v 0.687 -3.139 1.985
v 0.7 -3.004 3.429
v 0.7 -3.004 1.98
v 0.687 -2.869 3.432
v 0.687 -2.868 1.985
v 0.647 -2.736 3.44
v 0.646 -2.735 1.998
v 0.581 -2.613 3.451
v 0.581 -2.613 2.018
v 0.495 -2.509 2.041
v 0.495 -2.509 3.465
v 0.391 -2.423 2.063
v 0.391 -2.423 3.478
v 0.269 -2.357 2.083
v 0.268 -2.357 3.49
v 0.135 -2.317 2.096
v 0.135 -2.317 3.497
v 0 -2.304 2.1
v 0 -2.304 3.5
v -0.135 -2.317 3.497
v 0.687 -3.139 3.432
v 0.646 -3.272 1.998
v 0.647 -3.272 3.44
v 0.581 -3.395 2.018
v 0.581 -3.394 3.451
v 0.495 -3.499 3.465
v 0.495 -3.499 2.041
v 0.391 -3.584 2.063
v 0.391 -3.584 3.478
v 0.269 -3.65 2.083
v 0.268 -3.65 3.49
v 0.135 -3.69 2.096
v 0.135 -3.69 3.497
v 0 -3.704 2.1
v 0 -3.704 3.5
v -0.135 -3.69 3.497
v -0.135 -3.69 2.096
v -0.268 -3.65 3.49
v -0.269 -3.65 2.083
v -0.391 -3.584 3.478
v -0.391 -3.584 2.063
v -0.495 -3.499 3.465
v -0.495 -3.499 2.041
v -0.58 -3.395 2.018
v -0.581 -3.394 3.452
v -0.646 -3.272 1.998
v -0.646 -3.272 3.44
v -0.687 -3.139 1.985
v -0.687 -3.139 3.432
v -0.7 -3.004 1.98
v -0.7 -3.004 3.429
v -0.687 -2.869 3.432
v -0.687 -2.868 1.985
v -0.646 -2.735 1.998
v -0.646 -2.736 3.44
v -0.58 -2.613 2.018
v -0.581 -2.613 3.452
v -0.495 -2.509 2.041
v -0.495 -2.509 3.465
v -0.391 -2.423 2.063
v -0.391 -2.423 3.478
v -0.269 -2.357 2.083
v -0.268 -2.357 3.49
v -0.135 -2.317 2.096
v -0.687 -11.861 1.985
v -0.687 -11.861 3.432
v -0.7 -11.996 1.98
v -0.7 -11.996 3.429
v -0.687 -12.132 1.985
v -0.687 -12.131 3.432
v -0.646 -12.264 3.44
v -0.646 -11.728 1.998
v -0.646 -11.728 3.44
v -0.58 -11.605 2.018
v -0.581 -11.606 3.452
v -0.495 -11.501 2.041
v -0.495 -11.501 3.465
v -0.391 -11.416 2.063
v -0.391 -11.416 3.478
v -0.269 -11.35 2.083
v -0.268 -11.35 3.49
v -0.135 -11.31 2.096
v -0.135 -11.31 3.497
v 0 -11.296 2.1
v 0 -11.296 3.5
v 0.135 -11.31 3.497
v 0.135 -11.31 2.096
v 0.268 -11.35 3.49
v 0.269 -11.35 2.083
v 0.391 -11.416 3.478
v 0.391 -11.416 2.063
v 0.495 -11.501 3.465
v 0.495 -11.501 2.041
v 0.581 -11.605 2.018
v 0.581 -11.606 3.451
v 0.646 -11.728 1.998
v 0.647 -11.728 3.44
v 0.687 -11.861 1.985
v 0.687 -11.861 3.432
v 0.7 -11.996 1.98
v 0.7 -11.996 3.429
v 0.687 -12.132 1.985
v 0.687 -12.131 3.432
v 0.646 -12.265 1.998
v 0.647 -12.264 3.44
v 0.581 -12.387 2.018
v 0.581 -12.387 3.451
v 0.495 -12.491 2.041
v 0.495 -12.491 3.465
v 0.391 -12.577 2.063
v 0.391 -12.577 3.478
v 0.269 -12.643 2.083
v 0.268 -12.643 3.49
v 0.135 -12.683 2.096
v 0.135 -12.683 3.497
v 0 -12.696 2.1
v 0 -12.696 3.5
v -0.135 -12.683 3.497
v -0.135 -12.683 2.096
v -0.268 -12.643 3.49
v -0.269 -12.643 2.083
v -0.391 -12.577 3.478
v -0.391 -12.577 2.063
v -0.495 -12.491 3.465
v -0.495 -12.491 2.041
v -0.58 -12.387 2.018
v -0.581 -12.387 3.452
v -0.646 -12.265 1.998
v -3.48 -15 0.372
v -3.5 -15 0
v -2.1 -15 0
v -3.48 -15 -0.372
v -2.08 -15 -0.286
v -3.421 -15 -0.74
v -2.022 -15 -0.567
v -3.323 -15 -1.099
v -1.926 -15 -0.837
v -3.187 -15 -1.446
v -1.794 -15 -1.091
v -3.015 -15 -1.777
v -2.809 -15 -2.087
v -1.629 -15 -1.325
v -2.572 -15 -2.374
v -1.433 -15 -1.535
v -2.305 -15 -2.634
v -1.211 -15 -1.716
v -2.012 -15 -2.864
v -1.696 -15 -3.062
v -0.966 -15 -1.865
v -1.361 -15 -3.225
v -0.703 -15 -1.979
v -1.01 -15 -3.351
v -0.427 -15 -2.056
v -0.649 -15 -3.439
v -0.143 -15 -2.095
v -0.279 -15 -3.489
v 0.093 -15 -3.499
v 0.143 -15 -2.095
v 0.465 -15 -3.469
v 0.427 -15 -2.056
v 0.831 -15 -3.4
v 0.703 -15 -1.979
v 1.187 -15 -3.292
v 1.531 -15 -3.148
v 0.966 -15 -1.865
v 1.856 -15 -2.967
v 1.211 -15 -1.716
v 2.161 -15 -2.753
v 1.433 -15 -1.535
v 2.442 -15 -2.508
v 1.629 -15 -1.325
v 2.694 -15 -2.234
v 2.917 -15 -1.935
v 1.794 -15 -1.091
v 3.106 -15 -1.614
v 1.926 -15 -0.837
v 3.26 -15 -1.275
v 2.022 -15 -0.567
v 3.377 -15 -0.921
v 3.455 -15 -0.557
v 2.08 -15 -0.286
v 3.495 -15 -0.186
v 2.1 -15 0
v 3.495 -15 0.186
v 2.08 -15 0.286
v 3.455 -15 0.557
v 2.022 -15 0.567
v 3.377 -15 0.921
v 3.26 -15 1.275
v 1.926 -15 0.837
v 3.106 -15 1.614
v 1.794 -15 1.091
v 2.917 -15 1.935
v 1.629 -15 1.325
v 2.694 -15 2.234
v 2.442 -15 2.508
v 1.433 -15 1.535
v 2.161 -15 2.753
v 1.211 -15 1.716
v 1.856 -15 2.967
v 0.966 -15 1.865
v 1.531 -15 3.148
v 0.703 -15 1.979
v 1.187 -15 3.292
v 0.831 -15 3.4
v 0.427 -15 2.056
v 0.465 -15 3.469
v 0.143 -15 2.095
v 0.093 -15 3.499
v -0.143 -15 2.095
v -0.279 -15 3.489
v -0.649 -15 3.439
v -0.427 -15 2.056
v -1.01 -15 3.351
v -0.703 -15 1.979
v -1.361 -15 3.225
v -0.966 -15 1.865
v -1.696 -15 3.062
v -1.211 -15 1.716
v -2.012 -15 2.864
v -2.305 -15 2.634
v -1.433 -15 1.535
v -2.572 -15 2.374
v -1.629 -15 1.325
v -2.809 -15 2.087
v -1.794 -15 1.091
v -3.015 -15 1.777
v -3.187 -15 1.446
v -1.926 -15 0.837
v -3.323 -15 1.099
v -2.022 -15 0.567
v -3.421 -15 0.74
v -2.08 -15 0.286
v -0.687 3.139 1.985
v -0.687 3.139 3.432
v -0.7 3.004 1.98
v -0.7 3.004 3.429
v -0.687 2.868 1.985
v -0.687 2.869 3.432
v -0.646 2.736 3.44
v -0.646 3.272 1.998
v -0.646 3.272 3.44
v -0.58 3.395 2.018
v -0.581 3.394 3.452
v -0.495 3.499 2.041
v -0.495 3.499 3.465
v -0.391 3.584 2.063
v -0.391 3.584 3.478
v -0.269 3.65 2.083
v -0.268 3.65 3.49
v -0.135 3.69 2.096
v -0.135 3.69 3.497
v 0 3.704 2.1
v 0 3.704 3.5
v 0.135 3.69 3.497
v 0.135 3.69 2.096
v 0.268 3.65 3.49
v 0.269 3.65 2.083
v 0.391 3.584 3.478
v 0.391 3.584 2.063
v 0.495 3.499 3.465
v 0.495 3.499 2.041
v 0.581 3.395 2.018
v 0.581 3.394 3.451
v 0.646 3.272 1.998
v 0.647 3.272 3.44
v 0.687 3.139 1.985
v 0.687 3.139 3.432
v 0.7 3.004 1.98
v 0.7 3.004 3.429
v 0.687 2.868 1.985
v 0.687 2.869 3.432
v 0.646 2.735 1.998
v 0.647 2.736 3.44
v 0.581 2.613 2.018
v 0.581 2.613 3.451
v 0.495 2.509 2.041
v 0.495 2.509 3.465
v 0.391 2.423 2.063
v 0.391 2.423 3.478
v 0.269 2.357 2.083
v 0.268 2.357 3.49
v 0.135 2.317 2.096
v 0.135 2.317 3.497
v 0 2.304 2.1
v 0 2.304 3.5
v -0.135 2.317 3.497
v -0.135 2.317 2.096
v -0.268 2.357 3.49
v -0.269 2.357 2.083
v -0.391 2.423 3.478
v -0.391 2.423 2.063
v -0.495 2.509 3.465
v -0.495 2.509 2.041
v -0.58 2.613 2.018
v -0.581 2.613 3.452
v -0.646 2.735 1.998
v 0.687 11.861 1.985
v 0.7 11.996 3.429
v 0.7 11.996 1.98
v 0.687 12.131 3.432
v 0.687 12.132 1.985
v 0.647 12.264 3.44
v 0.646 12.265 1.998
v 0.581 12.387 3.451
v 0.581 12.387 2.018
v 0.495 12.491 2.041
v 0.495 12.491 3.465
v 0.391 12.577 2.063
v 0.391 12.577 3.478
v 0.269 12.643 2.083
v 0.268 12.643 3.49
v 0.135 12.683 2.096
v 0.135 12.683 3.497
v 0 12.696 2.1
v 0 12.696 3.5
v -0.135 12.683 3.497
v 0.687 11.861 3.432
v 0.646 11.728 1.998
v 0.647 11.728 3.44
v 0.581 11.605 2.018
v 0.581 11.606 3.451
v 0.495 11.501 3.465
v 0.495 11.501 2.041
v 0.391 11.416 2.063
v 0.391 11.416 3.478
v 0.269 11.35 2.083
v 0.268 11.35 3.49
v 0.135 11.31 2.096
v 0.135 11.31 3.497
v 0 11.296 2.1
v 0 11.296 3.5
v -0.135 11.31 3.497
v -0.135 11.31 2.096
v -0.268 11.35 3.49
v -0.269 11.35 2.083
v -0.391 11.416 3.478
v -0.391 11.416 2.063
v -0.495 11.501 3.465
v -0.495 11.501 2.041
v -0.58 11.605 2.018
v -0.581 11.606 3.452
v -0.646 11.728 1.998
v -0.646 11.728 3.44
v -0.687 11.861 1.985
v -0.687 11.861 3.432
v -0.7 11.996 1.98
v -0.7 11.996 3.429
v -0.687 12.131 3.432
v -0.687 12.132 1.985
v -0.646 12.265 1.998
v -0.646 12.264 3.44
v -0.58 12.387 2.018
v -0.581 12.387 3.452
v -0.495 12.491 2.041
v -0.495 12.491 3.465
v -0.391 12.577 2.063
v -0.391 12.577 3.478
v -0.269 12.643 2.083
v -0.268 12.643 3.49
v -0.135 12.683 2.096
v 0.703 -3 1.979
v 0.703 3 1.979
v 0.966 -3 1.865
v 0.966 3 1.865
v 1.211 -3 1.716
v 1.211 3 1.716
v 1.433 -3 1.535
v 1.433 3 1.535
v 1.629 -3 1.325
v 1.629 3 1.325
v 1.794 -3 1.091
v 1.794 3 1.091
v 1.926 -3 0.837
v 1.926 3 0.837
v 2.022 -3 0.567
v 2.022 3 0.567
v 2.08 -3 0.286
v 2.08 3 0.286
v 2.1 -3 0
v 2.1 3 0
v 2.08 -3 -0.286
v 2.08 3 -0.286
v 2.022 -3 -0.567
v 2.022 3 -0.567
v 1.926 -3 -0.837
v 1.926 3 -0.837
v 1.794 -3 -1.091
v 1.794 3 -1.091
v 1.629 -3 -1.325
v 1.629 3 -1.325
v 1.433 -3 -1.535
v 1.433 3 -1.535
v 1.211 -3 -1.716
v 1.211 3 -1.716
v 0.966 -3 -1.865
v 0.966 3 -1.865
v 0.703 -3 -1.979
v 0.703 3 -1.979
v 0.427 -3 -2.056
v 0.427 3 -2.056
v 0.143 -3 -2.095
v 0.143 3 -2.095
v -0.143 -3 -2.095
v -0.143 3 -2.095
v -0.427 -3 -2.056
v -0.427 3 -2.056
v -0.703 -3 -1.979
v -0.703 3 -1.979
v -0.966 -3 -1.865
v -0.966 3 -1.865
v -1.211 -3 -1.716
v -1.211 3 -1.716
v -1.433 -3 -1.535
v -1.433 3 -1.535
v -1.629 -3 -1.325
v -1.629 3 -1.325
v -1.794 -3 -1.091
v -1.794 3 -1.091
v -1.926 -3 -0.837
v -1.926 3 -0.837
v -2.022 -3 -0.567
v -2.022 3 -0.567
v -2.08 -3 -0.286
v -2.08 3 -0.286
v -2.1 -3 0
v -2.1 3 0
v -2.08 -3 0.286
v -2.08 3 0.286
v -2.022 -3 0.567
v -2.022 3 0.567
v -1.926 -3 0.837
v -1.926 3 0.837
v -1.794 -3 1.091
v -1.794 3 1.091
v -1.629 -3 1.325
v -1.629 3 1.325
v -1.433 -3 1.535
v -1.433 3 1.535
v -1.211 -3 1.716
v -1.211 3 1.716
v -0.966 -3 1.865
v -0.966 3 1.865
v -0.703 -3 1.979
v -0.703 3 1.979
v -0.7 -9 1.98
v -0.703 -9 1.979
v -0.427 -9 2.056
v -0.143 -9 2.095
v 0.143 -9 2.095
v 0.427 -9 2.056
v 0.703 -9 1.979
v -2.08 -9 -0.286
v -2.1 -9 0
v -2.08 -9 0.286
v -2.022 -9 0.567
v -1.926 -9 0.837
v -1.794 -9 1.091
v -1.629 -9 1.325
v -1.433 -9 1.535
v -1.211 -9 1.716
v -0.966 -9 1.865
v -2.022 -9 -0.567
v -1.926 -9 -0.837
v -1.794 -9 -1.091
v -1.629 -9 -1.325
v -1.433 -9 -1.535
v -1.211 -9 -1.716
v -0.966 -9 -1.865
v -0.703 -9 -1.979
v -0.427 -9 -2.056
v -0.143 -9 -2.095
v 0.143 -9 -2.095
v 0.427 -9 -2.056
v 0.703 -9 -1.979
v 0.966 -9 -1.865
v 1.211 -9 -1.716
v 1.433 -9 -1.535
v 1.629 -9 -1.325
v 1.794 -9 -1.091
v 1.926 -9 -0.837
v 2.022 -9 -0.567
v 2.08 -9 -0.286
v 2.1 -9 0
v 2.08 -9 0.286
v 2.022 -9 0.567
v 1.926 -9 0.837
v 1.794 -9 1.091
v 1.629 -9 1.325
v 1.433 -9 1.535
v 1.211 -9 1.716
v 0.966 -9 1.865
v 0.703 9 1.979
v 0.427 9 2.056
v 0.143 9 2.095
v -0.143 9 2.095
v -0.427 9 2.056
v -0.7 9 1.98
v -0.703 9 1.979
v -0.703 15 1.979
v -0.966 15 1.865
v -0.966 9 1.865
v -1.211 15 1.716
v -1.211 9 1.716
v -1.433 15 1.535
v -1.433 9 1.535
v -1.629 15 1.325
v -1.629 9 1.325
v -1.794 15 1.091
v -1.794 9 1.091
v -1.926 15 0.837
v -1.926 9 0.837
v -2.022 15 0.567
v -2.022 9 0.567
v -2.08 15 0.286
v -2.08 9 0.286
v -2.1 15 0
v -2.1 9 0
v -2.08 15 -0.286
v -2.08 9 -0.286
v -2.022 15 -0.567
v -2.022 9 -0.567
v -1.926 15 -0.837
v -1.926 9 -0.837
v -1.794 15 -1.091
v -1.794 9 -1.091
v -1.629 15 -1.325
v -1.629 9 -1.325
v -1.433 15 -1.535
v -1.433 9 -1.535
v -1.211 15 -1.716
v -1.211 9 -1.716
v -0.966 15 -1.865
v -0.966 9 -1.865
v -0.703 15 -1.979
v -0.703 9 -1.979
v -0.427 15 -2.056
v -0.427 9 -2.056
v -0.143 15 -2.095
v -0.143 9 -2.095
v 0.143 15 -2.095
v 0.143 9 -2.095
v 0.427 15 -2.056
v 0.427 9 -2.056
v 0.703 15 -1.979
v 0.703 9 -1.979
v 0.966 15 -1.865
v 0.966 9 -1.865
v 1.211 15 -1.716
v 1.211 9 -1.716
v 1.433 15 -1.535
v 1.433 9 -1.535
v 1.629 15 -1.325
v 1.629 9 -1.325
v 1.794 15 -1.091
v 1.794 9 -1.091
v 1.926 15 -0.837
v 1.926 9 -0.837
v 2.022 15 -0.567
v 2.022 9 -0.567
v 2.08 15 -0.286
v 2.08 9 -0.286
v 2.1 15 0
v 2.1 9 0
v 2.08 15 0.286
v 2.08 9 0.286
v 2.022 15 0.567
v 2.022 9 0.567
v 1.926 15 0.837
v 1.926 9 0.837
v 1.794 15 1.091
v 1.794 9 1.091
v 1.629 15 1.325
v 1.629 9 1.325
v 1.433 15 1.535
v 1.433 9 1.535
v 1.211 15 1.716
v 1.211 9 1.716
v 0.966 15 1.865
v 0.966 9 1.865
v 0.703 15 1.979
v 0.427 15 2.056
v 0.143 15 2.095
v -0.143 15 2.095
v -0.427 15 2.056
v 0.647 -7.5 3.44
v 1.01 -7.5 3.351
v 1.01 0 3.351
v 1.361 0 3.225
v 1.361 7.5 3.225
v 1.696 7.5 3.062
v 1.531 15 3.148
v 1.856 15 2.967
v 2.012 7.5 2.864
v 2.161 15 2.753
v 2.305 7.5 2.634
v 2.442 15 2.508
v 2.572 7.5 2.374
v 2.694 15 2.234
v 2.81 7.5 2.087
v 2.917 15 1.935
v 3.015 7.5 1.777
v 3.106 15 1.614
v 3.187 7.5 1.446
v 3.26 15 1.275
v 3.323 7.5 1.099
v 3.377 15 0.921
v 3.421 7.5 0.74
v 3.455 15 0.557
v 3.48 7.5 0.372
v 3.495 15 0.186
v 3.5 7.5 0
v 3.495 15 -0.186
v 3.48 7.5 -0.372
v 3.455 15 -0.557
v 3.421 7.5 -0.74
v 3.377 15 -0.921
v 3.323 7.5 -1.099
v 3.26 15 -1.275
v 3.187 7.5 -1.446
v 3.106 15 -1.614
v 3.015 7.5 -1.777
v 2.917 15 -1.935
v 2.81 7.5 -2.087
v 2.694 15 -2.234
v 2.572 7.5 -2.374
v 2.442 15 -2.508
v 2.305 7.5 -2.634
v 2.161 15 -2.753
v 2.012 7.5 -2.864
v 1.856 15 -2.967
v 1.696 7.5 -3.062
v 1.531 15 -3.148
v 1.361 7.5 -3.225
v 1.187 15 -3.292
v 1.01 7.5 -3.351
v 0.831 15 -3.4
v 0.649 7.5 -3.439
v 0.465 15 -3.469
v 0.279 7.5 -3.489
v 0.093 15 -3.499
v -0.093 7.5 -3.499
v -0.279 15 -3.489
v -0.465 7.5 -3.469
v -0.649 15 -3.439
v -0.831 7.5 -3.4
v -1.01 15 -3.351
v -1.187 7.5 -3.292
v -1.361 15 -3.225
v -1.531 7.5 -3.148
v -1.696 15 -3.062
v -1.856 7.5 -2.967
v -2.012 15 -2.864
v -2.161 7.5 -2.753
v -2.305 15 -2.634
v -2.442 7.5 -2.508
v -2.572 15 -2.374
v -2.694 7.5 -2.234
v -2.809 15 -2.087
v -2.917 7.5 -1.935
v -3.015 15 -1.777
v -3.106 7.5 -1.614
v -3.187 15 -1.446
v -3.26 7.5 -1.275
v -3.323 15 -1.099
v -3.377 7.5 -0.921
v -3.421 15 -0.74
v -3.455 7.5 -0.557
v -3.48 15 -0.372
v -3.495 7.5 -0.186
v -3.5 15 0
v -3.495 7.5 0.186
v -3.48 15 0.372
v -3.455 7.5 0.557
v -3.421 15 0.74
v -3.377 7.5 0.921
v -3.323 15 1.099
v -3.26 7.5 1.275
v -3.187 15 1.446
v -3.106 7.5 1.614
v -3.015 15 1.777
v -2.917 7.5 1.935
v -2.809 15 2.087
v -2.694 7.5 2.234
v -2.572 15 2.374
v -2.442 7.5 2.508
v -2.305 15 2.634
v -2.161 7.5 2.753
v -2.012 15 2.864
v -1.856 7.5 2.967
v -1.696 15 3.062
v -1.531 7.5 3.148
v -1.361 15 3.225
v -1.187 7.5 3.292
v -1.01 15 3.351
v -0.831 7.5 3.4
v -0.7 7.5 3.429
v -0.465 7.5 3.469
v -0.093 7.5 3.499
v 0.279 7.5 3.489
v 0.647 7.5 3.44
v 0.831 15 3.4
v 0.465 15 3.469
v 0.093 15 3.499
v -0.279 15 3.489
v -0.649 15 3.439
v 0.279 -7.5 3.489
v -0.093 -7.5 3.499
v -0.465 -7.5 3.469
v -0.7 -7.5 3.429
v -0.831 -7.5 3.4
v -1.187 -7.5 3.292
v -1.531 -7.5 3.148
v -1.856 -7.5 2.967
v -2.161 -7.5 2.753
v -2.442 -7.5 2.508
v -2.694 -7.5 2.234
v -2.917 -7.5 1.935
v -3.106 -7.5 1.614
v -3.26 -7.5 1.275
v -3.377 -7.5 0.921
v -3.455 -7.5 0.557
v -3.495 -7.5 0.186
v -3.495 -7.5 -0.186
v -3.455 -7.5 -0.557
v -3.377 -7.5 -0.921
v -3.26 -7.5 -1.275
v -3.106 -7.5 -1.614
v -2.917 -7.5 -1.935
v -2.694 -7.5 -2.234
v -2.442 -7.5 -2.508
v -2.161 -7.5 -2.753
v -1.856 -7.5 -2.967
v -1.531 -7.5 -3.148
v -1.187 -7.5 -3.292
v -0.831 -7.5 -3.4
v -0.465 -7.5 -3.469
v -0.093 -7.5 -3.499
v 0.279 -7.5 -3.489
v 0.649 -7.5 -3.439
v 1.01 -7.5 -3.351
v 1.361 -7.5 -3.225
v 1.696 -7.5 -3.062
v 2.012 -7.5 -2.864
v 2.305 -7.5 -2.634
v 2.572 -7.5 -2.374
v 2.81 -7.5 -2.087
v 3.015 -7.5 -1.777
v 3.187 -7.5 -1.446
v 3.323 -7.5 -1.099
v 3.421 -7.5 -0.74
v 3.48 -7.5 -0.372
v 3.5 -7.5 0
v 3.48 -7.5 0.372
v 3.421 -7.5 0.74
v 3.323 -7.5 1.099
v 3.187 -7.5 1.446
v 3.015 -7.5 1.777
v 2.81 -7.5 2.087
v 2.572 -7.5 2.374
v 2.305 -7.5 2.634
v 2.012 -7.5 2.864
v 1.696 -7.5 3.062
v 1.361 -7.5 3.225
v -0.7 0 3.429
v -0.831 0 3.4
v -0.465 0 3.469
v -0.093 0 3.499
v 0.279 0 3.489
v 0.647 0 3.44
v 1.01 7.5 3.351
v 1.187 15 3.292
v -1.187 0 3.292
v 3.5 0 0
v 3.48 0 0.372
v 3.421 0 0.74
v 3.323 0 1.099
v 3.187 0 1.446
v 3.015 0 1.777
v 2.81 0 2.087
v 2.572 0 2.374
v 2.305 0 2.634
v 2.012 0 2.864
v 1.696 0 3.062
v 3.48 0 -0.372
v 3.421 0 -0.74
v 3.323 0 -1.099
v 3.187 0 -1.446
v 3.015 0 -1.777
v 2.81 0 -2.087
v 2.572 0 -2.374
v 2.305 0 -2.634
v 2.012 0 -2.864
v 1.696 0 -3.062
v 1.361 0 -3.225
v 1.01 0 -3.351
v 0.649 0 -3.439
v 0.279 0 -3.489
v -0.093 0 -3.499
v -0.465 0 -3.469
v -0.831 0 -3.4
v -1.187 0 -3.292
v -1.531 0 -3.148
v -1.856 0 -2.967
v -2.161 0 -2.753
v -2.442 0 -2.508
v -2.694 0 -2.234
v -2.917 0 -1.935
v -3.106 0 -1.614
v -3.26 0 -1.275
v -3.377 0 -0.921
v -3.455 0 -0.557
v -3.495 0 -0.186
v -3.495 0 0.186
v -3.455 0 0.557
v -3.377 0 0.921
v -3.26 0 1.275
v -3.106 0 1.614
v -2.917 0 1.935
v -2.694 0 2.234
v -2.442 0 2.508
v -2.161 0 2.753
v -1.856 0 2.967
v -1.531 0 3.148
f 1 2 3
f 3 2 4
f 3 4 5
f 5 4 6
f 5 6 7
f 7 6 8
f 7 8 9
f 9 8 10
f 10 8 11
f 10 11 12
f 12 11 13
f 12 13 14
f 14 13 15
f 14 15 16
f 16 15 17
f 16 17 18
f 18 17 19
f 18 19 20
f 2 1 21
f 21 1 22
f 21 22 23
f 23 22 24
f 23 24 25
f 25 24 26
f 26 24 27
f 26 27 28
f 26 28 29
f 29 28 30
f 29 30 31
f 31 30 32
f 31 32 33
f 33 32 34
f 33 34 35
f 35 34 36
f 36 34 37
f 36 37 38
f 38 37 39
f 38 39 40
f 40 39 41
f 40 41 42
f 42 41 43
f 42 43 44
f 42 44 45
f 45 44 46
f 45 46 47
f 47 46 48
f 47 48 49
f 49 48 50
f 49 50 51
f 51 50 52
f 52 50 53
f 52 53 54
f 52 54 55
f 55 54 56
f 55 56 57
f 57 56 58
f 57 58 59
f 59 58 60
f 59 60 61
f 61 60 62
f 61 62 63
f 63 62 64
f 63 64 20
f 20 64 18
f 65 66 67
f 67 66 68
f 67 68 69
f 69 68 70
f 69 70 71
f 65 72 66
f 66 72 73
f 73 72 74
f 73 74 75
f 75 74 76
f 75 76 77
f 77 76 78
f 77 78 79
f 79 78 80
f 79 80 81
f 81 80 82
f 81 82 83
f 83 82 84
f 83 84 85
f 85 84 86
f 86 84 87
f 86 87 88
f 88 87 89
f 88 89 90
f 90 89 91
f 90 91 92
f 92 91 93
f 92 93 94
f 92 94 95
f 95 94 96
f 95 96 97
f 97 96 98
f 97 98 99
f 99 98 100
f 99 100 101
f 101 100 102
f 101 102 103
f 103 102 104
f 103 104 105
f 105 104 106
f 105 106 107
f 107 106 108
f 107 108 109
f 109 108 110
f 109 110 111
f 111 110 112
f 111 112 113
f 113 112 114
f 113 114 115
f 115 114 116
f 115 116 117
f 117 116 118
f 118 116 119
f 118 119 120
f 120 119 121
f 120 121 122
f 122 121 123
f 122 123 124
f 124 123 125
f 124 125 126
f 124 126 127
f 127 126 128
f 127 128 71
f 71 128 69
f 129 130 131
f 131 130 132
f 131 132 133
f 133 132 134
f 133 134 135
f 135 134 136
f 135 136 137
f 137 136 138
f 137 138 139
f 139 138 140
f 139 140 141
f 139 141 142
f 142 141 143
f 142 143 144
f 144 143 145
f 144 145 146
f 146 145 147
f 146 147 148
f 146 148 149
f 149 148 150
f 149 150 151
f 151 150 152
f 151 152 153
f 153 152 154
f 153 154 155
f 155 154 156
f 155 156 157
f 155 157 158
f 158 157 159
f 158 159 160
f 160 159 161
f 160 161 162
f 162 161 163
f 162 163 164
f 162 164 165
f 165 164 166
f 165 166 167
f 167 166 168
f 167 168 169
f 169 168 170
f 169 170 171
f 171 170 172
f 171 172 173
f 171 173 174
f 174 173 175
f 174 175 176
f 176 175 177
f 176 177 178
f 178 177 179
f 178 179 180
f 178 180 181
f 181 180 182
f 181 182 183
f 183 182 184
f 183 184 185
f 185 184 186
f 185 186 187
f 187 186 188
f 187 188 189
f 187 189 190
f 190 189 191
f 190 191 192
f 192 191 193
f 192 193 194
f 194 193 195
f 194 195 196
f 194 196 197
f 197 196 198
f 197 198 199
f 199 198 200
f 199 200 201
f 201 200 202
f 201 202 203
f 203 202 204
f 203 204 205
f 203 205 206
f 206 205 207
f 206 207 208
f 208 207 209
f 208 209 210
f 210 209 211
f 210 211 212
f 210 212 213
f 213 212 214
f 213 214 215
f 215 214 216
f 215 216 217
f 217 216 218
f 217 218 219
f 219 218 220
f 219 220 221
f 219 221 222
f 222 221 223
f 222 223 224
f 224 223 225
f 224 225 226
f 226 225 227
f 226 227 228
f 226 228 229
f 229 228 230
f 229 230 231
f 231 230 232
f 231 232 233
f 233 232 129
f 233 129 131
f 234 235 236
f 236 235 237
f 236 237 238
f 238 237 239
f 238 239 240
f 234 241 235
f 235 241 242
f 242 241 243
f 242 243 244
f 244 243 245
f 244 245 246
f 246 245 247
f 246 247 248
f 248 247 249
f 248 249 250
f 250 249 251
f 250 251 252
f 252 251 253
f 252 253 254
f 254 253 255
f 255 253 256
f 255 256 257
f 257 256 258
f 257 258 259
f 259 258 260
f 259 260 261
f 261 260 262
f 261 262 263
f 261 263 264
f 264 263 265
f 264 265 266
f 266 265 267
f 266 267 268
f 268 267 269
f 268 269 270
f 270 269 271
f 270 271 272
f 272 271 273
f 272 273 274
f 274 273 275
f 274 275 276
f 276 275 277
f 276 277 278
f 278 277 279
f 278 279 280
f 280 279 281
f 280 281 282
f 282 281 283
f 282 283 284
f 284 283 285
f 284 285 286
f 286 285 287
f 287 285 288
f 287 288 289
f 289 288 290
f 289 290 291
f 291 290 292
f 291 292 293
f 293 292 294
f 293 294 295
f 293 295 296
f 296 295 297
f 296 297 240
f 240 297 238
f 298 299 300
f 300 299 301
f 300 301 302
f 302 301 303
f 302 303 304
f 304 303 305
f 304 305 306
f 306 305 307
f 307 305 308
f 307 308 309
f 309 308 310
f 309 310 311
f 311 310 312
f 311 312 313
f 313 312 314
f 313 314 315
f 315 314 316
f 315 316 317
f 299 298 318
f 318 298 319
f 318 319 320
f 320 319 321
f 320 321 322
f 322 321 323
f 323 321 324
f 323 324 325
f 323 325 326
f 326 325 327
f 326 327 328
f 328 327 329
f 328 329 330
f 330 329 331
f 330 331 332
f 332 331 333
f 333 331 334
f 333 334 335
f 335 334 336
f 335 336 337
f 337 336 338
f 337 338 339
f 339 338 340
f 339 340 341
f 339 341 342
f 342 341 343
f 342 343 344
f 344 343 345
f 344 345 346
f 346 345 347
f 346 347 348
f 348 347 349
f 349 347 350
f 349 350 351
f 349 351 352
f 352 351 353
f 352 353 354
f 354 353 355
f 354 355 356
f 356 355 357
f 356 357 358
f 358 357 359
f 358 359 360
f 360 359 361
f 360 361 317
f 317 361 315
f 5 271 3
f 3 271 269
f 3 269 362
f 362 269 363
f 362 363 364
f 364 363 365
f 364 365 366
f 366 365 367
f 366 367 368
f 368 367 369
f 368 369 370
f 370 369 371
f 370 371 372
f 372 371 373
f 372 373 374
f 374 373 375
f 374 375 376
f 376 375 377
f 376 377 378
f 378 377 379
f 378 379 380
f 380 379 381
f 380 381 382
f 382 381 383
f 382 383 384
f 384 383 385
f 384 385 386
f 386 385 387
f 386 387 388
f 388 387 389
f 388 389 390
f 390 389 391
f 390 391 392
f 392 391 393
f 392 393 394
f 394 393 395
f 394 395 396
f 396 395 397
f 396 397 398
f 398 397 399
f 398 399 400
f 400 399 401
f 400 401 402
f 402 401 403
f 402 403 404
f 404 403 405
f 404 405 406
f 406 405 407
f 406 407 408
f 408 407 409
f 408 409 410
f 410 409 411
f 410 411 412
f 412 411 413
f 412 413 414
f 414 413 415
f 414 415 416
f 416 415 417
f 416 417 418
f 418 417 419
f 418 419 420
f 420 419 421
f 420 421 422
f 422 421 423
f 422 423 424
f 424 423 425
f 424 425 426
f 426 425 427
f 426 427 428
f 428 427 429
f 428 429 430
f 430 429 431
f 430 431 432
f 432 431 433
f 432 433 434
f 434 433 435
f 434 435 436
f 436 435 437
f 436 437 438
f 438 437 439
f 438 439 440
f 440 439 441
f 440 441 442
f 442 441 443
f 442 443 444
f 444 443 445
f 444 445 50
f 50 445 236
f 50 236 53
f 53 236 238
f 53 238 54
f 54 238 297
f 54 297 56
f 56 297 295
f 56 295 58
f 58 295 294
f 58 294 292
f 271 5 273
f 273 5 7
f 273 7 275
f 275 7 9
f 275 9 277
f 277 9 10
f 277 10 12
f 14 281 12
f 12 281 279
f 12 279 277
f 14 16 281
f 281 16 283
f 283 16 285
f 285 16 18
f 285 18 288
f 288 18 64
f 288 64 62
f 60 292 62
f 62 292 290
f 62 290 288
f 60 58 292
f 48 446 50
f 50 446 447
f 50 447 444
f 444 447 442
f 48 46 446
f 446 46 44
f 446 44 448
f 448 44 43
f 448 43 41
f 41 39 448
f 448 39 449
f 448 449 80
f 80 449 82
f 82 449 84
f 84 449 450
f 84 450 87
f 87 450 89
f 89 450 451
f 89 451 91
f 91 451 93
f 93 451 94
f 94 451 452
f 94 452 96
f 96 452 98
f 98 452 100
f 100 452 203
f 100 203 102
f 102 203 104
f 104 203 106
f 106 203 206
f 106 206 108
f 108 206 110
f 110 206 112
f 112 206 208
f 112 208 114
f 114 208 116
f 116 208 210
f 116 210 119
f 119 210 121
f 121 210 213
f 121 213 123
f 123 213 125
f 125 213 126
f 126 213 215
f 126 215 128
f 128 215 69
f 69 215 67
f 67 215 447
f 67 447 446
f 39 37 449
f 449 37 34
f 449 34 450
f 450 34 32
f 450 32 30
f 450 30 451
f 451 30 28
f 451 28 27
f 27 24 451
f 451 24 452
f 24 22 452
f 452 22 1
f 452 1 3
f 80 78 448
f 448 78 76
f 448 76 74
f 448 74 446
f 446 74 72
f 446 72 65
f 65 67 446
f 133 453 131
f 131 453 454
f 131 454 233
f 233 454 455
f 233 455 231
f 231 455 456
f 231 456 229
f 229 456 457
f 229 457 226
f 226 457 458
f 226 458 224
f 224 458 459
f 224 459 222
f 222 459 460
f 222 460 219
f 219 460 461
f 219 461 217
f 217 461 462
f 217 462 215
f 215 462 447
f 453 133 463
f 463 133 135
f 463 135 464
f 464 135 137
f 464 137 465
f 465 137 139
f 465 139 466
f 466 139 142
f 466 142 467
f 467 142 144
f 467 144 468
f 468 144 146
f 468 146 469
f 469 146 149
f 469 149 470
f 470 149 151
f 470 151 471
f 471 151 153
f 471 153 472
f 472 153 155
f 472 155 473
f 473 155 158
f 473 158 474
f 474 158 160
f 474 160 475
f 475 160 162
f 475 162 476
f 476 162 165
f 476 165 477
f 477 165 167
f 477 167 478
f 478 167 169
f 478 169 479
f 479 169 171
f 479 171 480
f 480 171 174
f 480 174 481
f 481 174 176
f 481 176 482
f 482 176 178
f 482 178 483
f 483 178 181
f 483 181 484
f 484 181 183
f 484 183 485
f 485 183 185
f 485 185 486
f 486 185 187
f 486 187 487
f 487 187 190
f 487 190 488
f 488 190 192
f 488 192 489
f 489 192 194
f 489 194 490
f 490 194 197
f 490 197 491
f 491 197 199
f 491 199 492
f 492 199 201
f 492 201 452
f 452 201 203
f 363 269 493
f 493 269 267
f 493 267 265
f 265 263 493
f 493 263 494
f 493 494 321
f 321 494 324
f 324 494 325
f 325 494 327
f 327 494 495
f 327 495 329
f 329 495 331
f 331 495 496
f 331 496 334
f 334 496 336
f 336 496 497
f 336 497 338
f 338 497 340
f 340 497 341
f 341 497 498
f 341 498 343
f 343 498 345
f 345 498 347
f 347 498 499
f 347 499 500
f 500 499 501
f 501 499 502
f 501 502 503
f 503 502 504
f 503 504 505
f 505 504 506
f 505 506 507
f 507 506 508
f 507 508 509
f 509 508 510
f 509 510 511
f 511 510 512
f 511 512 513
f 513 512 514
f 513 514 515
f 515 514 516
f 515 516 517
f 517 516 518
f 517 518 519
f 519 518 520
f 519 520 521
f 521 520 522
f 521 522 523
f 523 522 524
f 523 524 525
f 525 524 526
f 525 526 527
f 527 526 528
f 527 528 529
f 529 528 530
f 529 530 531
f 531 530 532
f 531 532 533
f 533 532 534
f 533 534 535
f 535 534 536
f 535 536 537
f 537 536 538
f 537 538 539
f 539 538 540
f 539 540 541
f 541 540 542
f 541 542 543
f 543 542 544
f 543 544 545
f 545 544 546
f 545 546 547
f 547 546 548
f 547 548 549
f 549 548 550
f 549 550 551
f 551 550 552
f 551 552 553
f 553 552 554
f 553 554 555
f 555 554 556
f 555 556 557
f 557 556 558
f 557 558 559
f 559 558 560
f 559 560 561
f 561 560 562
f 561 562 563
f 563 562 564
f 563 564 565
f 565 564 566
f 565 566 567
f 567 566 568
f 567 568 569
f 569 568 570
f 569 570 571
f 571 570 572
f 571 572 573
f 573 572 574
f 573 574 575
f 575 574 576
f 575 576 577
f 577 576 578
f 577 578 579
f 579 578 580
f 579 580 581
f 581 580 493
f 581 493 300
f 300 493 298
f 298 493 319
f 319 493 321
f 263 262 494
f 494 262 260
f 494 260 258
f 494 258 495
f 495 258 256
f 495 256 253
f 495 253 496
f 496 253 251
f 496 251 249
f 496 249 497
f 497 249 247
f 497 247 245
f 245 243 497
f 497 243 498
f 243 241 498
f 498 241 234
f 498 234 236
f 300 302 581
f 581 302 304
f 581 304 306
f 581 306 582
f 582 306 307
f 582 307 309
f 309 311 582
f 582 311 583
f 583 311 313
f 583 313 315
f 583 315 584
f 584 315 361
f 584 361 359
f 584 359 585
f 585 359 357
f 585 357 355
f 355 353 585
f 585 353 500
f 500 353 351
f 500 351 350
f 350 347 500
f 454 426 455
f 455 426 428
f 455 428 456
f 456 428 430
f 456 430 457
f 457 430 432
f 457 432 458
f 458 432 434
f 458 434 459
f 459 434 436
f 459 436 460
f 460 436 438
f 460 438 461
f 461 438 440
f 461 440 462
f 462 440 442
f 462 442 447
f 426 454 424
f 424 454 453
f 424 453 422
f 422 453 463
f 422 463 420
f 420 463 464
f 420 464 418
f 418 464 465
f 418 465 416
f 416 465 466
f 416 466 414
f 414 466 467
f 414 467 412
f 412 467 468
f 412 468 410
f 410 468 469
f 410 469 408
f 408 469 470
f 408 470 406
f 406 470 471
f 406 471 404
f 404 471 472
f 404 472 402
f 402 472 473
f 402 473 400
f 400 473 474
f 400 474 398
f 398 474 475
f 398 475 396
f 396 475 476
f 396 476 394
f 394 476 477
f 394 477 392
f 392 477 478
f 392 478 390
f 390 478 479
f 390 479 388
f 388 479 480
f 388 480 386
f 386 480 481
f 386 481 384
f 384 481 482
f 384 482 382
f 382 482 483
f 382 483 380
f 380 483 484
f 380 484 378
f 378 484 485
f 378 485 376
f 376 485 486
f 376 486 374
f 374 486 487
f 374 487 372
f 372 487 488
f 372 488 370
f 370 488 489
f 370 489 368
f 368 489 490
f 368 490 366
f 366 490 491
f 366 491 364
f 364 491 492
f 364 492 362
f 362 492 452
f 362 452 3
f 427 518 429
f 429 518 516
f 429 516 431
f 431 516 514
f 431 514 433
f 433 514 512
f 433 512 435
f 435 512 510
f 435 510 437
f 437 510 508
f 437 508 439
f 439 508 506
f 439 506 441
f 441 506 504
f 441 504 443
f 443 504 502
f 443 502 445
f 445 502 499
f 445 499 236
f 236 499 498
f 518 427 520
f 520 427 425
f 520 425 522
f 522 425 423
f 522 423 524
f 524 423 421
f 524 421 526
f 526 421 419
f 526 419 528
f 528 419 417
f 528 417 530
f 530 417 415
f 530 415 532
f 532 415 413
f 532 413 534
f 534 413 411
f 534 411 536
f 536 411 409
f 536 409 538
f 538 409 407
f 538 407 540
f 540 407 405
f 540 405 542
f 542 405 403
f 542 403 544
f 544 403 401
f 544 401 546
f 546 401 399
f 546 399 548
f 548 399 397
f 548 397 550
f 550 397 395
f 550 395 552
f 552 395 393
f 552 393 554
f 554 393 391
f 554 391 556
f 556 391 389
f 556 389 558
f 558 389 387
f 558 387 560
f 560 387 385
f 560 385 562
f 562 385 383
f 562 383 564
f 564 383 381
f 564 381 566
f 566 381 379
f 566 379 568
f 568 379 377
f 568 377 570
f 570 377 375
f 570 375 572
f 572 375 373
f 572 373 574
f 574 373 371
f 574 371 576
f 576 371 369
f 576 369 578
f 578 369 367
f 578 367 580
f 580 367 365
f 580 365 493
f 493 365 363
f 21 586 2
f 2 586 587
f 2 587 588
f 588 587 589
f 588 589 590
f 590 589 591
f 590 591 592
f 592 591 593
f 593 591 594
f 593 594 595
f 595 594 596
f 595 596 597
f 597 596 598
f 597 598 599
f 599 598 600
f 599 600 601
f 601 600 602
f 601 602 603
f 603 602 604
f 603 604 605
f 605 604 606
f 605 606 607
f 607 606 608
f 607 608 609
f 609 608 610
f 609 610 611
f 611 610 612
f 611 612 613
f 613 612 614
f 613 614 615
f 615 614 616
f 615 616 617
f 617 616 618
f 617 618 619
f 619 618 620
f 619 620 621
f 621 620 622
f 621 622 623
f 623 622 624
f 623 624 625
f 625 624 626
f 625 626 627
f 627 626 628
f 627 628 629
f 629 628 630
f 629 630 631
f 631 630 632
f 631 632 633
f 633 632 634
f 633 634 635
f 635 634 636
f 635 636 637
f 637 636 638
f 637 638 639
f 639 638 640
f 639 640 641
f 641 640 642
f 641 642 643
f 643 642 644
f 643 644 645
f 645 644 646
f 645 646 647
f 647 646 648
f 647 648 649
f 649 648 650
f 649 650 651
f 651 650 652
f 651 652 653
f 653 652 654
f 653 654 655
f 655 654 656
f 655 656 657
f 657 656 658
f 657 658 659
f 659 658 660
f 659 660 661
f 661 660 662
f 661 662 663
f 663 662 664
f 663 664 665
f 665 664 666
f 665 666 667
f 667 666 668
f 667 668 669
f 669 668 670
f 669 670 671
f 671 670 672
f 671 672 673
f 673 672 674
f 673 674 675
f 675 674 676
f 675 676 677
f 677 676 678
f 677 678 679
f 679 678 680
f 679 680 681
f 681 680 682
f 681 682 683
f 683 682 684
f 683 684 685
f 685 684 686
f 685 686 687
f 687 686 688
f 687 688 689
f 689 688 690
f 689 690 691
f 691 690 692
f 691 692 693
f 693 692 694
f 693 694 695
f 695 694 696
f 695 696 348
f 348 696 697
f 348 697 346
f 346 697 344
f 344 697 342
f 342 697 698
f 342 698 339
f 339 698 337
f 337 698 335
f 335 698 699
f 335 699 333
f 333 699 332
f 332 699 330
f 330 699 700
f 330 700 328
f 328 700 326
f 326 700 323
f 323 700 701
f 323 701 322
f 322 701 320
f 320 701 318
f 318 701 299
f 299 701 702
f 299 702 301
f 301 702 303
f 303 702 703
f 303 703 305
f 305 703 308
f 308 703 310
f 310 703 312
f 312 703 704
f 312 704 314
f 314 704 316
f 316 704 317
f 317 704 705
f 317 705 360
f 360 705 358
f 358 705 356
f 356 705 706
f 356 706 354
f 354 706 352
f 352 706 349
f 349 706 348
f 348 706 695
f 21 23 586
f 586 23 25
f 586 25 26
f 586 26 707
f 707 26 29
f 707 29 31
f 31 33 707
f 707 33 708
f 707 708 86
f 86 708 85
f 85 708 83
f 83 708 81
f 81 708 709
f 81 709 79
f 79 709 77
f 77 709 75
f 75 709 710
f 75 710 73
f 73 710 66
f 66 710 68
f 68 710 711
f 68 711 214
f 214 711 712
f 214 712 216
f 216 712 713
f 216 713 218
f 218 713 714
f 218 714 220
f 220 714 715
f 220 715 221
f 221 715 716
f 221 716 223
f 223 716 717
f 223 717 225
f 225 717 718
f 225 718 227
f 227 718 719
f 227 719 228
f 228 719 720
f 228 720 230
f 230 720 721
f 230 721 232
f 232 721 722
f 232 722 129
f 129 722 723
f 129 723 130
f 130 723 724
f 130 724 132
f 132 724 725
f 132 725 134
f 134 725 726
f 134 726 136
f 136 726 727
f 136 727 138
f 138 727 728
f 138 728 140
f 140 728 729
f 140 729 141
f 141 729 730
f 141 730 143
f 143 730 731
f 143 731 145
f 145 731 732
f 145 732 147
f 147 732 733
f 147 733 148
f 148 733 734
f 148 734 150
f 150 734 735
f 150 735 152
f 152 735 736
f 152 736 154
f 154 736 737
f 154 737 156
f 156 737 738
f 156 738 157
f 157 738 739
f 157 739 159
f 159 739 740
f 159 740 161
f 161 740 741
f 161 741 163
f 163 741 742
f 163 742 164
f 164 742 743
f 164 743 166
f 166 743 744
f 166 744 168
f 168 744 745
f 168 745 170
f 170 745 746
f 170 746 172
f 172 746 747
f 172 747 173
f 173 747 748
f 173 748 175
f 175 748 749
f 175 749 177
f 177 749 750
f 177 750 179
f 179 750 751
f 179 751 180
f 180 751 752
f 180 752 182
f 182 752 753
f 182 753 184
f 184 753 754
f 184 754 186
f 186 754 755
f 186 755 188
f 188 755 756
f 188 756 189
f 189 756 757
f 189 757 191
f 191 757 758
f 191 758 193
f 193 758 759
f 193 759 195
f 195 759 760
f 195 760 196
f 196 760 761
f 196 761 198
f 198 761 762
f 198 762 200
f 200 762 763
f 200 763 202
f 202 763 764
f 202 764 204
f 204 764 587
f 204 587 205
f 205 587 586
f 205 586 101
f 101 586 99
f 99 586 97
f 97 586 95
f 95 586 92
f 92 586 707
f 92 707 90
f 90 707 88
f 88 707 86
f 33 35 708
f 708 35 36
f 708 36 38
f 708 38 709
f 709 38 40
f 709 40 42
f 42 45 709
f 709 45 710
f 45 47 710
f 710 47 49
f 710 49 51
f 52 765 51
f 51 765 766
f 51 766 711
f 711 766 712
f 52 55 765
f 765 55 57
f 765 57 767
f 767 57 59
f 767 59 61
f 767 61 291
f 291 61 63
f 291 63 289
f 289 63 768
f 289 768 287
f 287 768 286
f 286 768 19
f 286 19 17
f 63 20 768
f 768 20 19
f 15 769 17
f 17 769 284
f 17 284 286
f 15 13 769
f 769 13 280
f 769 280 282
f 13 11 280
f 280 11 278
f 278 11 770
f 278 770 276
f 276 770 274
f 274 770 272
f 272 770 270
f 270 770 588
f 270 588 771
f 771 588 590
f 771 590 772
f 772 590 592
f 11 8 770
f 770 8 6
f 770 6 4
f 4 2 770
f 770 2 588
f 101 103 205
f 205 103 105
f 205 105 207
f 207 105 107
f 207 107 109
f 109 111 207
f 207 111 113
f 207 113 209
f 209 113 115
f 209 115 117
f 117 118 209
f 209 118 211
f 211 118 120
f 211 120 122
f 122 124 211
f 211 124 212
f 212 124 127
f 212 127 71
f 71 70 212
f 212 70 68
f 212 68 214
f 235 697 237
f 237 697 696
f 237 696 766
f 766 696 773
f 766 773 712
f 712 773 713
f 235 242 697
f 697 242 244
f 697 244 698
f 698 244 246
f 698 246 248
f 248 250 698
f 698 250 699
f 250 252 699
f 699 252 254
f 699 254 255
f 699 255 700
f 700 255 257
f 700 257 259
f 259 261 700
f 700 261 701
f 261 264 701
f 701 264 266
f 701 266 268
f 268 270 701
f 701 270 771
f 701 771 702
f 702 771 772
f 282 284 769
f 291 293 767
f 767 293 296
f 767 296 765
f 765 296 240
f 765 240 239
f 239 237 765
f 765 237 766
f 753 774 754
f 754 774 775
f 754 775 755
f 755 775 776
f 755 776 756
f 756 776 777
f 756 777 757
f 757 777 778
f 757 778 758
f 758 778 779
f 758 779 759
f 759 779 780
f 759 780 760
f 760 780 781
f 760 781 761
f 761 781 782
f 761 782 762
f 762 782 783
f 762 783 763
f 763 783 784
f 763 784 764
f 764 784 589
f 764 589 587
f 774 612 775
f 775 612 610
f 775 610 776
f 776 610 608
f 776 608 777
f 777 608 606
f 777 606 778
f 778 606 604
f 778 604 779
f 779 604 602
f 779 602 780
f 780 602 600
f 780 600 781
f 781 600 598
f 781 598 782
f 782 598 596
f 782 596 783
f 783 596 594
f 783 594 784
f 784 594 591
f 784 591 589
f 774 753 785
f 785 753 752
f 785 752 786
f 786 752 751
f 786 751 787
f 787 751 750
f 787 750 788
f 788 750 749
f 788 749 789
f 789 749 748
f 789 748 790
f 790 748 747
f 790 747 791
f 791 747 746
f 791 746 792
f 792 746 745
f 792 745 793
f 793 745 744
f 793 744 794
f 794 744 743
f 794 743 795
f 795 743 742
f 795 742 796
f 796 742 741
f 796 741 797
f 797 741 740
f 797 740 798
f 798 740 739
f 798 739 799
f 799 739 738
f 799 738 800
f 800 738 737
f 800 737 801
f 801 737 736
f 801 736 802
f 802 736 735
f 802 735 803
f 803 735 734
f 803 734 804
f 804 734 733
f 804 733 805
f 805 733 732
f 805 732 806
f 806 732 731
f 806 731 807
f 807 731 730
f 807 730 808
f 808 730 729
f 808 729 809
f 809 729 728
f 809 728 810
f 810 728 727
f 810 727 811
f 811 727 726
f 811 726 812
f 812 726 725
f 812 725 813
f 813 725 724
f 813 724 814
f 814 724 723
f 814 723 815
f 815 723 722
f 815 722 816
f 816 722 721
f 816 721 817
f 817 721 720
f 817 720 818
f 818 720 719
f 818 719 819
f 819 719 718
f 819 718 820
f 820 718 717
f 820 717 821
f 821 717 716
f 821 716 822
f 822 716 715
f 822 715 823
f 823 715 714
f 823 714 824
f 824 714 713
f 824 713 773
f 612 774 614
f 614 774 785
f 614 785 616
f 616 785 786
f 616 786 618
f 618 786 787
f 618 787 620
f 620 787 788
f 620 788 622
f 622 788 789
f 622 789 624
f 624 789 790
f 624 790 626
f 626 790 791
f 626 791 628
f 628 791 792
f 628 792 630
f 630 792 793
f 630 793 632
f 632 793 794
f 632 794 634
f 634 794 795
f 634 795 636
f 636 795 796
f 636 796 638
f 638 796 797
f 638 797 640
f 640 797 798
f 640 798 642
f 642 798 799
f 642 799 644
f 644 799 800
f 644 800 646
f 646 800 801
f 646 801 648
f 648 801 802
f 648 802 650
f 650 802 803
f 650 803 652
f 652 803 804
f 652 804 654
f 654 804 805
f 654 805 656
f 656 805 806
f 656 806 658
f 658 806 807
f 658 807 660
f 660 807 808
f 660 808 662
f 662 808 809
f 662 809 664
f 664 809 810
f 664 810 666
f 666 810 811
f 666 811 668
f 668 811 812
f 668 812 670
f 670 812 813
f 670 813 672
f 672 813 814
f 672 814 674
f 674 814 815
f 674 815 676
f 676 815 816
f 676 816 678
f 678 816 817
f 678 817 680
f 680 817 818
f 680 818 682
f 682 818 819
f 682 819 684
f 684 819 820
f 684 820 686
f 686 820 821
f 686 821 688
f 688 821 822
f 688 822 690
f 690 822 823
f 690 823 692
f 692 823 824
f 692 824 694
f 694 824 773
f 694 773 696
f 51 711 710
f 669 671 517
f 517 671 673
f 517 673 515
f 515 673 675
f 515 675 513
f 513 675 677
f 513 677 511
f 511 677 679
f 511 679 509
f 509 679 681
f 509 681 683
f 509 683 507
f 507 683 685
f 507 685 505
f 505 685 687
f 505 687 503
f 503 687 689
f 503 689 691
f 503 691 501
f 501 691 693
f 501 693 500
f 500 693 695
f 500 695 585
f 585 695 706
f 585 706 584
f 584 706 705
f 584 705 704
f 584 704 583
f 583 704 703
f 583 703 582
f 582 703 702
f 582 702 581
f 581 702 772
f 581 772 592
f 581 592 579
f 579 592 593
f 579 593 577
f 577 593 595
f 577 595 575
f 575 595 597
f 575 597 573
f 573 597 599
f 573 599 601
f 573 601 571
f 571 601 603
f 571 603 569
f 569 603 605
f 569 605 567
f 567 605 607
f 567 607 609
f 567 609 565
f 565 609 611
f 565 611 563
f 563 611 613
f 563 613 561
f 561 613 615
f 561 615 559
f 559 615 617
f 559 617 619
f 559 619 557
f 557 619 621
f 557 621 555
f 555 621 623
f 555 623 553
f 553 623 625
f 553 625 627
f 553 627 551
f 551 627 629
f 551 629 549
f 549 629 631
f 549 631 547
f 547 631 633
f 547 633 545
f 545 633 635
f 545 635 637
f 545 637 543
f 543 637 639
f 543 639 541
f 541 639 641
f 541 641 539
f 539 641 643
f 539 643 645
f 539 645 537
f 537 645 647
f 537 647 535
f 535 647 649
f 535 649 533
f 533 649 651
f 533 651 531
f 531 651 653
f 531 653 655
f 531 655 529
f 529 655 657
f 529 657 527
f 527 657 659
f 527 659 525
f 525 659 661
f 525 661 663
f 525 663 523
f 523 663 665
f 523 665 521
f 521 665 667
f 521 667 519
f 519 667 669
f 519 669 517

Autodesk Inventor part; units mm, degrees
sketch "Sketch1" plane through (0, 0, 0) normal (0, 1, 0) x (-1, 0, 0)
  circle A0 centre (0, 0) radius 2.1
  circle A1 centre (0, 0) radius 3.5
  line L0 (0, -2.1) -> (0, -3.5)
  dimension "d0" = 4.2
  dimension "d1" = 7
extrude "Extrusion1" add sketch "Sketch1" along normal blind 15
sketch "Sketch2" plane through (0, 0, 0) normal (0, 0, 1) x (1, 0, 0)
  point P0 (0, 0)
  point P1 (0.0001, 11.9963)
hole "Hole1" at (0.0001, 11.9963, 0) direction (0, 0, 1) diameter 1.4 depth 4.8 tip angle 118
ref_plane "Work Plane1" through (0, 7.5, 0) normal (0, 1, 0) x (1, 0, 0)
mirror "Mirror1" about plane through (0, 7.5, 0) normal (0, 1, 0) of "Hole1"
mirror "Mirror2" about plane through (0, 0, 0) normal (0, 1, 0) of "Extrusion1"
mirror "Mirror3" about plane through (0, 0, 0) normal (0, 1, 0) of "Hole1", "Mirror1"
properties part number "Colletto 3mm_3DPrint"
